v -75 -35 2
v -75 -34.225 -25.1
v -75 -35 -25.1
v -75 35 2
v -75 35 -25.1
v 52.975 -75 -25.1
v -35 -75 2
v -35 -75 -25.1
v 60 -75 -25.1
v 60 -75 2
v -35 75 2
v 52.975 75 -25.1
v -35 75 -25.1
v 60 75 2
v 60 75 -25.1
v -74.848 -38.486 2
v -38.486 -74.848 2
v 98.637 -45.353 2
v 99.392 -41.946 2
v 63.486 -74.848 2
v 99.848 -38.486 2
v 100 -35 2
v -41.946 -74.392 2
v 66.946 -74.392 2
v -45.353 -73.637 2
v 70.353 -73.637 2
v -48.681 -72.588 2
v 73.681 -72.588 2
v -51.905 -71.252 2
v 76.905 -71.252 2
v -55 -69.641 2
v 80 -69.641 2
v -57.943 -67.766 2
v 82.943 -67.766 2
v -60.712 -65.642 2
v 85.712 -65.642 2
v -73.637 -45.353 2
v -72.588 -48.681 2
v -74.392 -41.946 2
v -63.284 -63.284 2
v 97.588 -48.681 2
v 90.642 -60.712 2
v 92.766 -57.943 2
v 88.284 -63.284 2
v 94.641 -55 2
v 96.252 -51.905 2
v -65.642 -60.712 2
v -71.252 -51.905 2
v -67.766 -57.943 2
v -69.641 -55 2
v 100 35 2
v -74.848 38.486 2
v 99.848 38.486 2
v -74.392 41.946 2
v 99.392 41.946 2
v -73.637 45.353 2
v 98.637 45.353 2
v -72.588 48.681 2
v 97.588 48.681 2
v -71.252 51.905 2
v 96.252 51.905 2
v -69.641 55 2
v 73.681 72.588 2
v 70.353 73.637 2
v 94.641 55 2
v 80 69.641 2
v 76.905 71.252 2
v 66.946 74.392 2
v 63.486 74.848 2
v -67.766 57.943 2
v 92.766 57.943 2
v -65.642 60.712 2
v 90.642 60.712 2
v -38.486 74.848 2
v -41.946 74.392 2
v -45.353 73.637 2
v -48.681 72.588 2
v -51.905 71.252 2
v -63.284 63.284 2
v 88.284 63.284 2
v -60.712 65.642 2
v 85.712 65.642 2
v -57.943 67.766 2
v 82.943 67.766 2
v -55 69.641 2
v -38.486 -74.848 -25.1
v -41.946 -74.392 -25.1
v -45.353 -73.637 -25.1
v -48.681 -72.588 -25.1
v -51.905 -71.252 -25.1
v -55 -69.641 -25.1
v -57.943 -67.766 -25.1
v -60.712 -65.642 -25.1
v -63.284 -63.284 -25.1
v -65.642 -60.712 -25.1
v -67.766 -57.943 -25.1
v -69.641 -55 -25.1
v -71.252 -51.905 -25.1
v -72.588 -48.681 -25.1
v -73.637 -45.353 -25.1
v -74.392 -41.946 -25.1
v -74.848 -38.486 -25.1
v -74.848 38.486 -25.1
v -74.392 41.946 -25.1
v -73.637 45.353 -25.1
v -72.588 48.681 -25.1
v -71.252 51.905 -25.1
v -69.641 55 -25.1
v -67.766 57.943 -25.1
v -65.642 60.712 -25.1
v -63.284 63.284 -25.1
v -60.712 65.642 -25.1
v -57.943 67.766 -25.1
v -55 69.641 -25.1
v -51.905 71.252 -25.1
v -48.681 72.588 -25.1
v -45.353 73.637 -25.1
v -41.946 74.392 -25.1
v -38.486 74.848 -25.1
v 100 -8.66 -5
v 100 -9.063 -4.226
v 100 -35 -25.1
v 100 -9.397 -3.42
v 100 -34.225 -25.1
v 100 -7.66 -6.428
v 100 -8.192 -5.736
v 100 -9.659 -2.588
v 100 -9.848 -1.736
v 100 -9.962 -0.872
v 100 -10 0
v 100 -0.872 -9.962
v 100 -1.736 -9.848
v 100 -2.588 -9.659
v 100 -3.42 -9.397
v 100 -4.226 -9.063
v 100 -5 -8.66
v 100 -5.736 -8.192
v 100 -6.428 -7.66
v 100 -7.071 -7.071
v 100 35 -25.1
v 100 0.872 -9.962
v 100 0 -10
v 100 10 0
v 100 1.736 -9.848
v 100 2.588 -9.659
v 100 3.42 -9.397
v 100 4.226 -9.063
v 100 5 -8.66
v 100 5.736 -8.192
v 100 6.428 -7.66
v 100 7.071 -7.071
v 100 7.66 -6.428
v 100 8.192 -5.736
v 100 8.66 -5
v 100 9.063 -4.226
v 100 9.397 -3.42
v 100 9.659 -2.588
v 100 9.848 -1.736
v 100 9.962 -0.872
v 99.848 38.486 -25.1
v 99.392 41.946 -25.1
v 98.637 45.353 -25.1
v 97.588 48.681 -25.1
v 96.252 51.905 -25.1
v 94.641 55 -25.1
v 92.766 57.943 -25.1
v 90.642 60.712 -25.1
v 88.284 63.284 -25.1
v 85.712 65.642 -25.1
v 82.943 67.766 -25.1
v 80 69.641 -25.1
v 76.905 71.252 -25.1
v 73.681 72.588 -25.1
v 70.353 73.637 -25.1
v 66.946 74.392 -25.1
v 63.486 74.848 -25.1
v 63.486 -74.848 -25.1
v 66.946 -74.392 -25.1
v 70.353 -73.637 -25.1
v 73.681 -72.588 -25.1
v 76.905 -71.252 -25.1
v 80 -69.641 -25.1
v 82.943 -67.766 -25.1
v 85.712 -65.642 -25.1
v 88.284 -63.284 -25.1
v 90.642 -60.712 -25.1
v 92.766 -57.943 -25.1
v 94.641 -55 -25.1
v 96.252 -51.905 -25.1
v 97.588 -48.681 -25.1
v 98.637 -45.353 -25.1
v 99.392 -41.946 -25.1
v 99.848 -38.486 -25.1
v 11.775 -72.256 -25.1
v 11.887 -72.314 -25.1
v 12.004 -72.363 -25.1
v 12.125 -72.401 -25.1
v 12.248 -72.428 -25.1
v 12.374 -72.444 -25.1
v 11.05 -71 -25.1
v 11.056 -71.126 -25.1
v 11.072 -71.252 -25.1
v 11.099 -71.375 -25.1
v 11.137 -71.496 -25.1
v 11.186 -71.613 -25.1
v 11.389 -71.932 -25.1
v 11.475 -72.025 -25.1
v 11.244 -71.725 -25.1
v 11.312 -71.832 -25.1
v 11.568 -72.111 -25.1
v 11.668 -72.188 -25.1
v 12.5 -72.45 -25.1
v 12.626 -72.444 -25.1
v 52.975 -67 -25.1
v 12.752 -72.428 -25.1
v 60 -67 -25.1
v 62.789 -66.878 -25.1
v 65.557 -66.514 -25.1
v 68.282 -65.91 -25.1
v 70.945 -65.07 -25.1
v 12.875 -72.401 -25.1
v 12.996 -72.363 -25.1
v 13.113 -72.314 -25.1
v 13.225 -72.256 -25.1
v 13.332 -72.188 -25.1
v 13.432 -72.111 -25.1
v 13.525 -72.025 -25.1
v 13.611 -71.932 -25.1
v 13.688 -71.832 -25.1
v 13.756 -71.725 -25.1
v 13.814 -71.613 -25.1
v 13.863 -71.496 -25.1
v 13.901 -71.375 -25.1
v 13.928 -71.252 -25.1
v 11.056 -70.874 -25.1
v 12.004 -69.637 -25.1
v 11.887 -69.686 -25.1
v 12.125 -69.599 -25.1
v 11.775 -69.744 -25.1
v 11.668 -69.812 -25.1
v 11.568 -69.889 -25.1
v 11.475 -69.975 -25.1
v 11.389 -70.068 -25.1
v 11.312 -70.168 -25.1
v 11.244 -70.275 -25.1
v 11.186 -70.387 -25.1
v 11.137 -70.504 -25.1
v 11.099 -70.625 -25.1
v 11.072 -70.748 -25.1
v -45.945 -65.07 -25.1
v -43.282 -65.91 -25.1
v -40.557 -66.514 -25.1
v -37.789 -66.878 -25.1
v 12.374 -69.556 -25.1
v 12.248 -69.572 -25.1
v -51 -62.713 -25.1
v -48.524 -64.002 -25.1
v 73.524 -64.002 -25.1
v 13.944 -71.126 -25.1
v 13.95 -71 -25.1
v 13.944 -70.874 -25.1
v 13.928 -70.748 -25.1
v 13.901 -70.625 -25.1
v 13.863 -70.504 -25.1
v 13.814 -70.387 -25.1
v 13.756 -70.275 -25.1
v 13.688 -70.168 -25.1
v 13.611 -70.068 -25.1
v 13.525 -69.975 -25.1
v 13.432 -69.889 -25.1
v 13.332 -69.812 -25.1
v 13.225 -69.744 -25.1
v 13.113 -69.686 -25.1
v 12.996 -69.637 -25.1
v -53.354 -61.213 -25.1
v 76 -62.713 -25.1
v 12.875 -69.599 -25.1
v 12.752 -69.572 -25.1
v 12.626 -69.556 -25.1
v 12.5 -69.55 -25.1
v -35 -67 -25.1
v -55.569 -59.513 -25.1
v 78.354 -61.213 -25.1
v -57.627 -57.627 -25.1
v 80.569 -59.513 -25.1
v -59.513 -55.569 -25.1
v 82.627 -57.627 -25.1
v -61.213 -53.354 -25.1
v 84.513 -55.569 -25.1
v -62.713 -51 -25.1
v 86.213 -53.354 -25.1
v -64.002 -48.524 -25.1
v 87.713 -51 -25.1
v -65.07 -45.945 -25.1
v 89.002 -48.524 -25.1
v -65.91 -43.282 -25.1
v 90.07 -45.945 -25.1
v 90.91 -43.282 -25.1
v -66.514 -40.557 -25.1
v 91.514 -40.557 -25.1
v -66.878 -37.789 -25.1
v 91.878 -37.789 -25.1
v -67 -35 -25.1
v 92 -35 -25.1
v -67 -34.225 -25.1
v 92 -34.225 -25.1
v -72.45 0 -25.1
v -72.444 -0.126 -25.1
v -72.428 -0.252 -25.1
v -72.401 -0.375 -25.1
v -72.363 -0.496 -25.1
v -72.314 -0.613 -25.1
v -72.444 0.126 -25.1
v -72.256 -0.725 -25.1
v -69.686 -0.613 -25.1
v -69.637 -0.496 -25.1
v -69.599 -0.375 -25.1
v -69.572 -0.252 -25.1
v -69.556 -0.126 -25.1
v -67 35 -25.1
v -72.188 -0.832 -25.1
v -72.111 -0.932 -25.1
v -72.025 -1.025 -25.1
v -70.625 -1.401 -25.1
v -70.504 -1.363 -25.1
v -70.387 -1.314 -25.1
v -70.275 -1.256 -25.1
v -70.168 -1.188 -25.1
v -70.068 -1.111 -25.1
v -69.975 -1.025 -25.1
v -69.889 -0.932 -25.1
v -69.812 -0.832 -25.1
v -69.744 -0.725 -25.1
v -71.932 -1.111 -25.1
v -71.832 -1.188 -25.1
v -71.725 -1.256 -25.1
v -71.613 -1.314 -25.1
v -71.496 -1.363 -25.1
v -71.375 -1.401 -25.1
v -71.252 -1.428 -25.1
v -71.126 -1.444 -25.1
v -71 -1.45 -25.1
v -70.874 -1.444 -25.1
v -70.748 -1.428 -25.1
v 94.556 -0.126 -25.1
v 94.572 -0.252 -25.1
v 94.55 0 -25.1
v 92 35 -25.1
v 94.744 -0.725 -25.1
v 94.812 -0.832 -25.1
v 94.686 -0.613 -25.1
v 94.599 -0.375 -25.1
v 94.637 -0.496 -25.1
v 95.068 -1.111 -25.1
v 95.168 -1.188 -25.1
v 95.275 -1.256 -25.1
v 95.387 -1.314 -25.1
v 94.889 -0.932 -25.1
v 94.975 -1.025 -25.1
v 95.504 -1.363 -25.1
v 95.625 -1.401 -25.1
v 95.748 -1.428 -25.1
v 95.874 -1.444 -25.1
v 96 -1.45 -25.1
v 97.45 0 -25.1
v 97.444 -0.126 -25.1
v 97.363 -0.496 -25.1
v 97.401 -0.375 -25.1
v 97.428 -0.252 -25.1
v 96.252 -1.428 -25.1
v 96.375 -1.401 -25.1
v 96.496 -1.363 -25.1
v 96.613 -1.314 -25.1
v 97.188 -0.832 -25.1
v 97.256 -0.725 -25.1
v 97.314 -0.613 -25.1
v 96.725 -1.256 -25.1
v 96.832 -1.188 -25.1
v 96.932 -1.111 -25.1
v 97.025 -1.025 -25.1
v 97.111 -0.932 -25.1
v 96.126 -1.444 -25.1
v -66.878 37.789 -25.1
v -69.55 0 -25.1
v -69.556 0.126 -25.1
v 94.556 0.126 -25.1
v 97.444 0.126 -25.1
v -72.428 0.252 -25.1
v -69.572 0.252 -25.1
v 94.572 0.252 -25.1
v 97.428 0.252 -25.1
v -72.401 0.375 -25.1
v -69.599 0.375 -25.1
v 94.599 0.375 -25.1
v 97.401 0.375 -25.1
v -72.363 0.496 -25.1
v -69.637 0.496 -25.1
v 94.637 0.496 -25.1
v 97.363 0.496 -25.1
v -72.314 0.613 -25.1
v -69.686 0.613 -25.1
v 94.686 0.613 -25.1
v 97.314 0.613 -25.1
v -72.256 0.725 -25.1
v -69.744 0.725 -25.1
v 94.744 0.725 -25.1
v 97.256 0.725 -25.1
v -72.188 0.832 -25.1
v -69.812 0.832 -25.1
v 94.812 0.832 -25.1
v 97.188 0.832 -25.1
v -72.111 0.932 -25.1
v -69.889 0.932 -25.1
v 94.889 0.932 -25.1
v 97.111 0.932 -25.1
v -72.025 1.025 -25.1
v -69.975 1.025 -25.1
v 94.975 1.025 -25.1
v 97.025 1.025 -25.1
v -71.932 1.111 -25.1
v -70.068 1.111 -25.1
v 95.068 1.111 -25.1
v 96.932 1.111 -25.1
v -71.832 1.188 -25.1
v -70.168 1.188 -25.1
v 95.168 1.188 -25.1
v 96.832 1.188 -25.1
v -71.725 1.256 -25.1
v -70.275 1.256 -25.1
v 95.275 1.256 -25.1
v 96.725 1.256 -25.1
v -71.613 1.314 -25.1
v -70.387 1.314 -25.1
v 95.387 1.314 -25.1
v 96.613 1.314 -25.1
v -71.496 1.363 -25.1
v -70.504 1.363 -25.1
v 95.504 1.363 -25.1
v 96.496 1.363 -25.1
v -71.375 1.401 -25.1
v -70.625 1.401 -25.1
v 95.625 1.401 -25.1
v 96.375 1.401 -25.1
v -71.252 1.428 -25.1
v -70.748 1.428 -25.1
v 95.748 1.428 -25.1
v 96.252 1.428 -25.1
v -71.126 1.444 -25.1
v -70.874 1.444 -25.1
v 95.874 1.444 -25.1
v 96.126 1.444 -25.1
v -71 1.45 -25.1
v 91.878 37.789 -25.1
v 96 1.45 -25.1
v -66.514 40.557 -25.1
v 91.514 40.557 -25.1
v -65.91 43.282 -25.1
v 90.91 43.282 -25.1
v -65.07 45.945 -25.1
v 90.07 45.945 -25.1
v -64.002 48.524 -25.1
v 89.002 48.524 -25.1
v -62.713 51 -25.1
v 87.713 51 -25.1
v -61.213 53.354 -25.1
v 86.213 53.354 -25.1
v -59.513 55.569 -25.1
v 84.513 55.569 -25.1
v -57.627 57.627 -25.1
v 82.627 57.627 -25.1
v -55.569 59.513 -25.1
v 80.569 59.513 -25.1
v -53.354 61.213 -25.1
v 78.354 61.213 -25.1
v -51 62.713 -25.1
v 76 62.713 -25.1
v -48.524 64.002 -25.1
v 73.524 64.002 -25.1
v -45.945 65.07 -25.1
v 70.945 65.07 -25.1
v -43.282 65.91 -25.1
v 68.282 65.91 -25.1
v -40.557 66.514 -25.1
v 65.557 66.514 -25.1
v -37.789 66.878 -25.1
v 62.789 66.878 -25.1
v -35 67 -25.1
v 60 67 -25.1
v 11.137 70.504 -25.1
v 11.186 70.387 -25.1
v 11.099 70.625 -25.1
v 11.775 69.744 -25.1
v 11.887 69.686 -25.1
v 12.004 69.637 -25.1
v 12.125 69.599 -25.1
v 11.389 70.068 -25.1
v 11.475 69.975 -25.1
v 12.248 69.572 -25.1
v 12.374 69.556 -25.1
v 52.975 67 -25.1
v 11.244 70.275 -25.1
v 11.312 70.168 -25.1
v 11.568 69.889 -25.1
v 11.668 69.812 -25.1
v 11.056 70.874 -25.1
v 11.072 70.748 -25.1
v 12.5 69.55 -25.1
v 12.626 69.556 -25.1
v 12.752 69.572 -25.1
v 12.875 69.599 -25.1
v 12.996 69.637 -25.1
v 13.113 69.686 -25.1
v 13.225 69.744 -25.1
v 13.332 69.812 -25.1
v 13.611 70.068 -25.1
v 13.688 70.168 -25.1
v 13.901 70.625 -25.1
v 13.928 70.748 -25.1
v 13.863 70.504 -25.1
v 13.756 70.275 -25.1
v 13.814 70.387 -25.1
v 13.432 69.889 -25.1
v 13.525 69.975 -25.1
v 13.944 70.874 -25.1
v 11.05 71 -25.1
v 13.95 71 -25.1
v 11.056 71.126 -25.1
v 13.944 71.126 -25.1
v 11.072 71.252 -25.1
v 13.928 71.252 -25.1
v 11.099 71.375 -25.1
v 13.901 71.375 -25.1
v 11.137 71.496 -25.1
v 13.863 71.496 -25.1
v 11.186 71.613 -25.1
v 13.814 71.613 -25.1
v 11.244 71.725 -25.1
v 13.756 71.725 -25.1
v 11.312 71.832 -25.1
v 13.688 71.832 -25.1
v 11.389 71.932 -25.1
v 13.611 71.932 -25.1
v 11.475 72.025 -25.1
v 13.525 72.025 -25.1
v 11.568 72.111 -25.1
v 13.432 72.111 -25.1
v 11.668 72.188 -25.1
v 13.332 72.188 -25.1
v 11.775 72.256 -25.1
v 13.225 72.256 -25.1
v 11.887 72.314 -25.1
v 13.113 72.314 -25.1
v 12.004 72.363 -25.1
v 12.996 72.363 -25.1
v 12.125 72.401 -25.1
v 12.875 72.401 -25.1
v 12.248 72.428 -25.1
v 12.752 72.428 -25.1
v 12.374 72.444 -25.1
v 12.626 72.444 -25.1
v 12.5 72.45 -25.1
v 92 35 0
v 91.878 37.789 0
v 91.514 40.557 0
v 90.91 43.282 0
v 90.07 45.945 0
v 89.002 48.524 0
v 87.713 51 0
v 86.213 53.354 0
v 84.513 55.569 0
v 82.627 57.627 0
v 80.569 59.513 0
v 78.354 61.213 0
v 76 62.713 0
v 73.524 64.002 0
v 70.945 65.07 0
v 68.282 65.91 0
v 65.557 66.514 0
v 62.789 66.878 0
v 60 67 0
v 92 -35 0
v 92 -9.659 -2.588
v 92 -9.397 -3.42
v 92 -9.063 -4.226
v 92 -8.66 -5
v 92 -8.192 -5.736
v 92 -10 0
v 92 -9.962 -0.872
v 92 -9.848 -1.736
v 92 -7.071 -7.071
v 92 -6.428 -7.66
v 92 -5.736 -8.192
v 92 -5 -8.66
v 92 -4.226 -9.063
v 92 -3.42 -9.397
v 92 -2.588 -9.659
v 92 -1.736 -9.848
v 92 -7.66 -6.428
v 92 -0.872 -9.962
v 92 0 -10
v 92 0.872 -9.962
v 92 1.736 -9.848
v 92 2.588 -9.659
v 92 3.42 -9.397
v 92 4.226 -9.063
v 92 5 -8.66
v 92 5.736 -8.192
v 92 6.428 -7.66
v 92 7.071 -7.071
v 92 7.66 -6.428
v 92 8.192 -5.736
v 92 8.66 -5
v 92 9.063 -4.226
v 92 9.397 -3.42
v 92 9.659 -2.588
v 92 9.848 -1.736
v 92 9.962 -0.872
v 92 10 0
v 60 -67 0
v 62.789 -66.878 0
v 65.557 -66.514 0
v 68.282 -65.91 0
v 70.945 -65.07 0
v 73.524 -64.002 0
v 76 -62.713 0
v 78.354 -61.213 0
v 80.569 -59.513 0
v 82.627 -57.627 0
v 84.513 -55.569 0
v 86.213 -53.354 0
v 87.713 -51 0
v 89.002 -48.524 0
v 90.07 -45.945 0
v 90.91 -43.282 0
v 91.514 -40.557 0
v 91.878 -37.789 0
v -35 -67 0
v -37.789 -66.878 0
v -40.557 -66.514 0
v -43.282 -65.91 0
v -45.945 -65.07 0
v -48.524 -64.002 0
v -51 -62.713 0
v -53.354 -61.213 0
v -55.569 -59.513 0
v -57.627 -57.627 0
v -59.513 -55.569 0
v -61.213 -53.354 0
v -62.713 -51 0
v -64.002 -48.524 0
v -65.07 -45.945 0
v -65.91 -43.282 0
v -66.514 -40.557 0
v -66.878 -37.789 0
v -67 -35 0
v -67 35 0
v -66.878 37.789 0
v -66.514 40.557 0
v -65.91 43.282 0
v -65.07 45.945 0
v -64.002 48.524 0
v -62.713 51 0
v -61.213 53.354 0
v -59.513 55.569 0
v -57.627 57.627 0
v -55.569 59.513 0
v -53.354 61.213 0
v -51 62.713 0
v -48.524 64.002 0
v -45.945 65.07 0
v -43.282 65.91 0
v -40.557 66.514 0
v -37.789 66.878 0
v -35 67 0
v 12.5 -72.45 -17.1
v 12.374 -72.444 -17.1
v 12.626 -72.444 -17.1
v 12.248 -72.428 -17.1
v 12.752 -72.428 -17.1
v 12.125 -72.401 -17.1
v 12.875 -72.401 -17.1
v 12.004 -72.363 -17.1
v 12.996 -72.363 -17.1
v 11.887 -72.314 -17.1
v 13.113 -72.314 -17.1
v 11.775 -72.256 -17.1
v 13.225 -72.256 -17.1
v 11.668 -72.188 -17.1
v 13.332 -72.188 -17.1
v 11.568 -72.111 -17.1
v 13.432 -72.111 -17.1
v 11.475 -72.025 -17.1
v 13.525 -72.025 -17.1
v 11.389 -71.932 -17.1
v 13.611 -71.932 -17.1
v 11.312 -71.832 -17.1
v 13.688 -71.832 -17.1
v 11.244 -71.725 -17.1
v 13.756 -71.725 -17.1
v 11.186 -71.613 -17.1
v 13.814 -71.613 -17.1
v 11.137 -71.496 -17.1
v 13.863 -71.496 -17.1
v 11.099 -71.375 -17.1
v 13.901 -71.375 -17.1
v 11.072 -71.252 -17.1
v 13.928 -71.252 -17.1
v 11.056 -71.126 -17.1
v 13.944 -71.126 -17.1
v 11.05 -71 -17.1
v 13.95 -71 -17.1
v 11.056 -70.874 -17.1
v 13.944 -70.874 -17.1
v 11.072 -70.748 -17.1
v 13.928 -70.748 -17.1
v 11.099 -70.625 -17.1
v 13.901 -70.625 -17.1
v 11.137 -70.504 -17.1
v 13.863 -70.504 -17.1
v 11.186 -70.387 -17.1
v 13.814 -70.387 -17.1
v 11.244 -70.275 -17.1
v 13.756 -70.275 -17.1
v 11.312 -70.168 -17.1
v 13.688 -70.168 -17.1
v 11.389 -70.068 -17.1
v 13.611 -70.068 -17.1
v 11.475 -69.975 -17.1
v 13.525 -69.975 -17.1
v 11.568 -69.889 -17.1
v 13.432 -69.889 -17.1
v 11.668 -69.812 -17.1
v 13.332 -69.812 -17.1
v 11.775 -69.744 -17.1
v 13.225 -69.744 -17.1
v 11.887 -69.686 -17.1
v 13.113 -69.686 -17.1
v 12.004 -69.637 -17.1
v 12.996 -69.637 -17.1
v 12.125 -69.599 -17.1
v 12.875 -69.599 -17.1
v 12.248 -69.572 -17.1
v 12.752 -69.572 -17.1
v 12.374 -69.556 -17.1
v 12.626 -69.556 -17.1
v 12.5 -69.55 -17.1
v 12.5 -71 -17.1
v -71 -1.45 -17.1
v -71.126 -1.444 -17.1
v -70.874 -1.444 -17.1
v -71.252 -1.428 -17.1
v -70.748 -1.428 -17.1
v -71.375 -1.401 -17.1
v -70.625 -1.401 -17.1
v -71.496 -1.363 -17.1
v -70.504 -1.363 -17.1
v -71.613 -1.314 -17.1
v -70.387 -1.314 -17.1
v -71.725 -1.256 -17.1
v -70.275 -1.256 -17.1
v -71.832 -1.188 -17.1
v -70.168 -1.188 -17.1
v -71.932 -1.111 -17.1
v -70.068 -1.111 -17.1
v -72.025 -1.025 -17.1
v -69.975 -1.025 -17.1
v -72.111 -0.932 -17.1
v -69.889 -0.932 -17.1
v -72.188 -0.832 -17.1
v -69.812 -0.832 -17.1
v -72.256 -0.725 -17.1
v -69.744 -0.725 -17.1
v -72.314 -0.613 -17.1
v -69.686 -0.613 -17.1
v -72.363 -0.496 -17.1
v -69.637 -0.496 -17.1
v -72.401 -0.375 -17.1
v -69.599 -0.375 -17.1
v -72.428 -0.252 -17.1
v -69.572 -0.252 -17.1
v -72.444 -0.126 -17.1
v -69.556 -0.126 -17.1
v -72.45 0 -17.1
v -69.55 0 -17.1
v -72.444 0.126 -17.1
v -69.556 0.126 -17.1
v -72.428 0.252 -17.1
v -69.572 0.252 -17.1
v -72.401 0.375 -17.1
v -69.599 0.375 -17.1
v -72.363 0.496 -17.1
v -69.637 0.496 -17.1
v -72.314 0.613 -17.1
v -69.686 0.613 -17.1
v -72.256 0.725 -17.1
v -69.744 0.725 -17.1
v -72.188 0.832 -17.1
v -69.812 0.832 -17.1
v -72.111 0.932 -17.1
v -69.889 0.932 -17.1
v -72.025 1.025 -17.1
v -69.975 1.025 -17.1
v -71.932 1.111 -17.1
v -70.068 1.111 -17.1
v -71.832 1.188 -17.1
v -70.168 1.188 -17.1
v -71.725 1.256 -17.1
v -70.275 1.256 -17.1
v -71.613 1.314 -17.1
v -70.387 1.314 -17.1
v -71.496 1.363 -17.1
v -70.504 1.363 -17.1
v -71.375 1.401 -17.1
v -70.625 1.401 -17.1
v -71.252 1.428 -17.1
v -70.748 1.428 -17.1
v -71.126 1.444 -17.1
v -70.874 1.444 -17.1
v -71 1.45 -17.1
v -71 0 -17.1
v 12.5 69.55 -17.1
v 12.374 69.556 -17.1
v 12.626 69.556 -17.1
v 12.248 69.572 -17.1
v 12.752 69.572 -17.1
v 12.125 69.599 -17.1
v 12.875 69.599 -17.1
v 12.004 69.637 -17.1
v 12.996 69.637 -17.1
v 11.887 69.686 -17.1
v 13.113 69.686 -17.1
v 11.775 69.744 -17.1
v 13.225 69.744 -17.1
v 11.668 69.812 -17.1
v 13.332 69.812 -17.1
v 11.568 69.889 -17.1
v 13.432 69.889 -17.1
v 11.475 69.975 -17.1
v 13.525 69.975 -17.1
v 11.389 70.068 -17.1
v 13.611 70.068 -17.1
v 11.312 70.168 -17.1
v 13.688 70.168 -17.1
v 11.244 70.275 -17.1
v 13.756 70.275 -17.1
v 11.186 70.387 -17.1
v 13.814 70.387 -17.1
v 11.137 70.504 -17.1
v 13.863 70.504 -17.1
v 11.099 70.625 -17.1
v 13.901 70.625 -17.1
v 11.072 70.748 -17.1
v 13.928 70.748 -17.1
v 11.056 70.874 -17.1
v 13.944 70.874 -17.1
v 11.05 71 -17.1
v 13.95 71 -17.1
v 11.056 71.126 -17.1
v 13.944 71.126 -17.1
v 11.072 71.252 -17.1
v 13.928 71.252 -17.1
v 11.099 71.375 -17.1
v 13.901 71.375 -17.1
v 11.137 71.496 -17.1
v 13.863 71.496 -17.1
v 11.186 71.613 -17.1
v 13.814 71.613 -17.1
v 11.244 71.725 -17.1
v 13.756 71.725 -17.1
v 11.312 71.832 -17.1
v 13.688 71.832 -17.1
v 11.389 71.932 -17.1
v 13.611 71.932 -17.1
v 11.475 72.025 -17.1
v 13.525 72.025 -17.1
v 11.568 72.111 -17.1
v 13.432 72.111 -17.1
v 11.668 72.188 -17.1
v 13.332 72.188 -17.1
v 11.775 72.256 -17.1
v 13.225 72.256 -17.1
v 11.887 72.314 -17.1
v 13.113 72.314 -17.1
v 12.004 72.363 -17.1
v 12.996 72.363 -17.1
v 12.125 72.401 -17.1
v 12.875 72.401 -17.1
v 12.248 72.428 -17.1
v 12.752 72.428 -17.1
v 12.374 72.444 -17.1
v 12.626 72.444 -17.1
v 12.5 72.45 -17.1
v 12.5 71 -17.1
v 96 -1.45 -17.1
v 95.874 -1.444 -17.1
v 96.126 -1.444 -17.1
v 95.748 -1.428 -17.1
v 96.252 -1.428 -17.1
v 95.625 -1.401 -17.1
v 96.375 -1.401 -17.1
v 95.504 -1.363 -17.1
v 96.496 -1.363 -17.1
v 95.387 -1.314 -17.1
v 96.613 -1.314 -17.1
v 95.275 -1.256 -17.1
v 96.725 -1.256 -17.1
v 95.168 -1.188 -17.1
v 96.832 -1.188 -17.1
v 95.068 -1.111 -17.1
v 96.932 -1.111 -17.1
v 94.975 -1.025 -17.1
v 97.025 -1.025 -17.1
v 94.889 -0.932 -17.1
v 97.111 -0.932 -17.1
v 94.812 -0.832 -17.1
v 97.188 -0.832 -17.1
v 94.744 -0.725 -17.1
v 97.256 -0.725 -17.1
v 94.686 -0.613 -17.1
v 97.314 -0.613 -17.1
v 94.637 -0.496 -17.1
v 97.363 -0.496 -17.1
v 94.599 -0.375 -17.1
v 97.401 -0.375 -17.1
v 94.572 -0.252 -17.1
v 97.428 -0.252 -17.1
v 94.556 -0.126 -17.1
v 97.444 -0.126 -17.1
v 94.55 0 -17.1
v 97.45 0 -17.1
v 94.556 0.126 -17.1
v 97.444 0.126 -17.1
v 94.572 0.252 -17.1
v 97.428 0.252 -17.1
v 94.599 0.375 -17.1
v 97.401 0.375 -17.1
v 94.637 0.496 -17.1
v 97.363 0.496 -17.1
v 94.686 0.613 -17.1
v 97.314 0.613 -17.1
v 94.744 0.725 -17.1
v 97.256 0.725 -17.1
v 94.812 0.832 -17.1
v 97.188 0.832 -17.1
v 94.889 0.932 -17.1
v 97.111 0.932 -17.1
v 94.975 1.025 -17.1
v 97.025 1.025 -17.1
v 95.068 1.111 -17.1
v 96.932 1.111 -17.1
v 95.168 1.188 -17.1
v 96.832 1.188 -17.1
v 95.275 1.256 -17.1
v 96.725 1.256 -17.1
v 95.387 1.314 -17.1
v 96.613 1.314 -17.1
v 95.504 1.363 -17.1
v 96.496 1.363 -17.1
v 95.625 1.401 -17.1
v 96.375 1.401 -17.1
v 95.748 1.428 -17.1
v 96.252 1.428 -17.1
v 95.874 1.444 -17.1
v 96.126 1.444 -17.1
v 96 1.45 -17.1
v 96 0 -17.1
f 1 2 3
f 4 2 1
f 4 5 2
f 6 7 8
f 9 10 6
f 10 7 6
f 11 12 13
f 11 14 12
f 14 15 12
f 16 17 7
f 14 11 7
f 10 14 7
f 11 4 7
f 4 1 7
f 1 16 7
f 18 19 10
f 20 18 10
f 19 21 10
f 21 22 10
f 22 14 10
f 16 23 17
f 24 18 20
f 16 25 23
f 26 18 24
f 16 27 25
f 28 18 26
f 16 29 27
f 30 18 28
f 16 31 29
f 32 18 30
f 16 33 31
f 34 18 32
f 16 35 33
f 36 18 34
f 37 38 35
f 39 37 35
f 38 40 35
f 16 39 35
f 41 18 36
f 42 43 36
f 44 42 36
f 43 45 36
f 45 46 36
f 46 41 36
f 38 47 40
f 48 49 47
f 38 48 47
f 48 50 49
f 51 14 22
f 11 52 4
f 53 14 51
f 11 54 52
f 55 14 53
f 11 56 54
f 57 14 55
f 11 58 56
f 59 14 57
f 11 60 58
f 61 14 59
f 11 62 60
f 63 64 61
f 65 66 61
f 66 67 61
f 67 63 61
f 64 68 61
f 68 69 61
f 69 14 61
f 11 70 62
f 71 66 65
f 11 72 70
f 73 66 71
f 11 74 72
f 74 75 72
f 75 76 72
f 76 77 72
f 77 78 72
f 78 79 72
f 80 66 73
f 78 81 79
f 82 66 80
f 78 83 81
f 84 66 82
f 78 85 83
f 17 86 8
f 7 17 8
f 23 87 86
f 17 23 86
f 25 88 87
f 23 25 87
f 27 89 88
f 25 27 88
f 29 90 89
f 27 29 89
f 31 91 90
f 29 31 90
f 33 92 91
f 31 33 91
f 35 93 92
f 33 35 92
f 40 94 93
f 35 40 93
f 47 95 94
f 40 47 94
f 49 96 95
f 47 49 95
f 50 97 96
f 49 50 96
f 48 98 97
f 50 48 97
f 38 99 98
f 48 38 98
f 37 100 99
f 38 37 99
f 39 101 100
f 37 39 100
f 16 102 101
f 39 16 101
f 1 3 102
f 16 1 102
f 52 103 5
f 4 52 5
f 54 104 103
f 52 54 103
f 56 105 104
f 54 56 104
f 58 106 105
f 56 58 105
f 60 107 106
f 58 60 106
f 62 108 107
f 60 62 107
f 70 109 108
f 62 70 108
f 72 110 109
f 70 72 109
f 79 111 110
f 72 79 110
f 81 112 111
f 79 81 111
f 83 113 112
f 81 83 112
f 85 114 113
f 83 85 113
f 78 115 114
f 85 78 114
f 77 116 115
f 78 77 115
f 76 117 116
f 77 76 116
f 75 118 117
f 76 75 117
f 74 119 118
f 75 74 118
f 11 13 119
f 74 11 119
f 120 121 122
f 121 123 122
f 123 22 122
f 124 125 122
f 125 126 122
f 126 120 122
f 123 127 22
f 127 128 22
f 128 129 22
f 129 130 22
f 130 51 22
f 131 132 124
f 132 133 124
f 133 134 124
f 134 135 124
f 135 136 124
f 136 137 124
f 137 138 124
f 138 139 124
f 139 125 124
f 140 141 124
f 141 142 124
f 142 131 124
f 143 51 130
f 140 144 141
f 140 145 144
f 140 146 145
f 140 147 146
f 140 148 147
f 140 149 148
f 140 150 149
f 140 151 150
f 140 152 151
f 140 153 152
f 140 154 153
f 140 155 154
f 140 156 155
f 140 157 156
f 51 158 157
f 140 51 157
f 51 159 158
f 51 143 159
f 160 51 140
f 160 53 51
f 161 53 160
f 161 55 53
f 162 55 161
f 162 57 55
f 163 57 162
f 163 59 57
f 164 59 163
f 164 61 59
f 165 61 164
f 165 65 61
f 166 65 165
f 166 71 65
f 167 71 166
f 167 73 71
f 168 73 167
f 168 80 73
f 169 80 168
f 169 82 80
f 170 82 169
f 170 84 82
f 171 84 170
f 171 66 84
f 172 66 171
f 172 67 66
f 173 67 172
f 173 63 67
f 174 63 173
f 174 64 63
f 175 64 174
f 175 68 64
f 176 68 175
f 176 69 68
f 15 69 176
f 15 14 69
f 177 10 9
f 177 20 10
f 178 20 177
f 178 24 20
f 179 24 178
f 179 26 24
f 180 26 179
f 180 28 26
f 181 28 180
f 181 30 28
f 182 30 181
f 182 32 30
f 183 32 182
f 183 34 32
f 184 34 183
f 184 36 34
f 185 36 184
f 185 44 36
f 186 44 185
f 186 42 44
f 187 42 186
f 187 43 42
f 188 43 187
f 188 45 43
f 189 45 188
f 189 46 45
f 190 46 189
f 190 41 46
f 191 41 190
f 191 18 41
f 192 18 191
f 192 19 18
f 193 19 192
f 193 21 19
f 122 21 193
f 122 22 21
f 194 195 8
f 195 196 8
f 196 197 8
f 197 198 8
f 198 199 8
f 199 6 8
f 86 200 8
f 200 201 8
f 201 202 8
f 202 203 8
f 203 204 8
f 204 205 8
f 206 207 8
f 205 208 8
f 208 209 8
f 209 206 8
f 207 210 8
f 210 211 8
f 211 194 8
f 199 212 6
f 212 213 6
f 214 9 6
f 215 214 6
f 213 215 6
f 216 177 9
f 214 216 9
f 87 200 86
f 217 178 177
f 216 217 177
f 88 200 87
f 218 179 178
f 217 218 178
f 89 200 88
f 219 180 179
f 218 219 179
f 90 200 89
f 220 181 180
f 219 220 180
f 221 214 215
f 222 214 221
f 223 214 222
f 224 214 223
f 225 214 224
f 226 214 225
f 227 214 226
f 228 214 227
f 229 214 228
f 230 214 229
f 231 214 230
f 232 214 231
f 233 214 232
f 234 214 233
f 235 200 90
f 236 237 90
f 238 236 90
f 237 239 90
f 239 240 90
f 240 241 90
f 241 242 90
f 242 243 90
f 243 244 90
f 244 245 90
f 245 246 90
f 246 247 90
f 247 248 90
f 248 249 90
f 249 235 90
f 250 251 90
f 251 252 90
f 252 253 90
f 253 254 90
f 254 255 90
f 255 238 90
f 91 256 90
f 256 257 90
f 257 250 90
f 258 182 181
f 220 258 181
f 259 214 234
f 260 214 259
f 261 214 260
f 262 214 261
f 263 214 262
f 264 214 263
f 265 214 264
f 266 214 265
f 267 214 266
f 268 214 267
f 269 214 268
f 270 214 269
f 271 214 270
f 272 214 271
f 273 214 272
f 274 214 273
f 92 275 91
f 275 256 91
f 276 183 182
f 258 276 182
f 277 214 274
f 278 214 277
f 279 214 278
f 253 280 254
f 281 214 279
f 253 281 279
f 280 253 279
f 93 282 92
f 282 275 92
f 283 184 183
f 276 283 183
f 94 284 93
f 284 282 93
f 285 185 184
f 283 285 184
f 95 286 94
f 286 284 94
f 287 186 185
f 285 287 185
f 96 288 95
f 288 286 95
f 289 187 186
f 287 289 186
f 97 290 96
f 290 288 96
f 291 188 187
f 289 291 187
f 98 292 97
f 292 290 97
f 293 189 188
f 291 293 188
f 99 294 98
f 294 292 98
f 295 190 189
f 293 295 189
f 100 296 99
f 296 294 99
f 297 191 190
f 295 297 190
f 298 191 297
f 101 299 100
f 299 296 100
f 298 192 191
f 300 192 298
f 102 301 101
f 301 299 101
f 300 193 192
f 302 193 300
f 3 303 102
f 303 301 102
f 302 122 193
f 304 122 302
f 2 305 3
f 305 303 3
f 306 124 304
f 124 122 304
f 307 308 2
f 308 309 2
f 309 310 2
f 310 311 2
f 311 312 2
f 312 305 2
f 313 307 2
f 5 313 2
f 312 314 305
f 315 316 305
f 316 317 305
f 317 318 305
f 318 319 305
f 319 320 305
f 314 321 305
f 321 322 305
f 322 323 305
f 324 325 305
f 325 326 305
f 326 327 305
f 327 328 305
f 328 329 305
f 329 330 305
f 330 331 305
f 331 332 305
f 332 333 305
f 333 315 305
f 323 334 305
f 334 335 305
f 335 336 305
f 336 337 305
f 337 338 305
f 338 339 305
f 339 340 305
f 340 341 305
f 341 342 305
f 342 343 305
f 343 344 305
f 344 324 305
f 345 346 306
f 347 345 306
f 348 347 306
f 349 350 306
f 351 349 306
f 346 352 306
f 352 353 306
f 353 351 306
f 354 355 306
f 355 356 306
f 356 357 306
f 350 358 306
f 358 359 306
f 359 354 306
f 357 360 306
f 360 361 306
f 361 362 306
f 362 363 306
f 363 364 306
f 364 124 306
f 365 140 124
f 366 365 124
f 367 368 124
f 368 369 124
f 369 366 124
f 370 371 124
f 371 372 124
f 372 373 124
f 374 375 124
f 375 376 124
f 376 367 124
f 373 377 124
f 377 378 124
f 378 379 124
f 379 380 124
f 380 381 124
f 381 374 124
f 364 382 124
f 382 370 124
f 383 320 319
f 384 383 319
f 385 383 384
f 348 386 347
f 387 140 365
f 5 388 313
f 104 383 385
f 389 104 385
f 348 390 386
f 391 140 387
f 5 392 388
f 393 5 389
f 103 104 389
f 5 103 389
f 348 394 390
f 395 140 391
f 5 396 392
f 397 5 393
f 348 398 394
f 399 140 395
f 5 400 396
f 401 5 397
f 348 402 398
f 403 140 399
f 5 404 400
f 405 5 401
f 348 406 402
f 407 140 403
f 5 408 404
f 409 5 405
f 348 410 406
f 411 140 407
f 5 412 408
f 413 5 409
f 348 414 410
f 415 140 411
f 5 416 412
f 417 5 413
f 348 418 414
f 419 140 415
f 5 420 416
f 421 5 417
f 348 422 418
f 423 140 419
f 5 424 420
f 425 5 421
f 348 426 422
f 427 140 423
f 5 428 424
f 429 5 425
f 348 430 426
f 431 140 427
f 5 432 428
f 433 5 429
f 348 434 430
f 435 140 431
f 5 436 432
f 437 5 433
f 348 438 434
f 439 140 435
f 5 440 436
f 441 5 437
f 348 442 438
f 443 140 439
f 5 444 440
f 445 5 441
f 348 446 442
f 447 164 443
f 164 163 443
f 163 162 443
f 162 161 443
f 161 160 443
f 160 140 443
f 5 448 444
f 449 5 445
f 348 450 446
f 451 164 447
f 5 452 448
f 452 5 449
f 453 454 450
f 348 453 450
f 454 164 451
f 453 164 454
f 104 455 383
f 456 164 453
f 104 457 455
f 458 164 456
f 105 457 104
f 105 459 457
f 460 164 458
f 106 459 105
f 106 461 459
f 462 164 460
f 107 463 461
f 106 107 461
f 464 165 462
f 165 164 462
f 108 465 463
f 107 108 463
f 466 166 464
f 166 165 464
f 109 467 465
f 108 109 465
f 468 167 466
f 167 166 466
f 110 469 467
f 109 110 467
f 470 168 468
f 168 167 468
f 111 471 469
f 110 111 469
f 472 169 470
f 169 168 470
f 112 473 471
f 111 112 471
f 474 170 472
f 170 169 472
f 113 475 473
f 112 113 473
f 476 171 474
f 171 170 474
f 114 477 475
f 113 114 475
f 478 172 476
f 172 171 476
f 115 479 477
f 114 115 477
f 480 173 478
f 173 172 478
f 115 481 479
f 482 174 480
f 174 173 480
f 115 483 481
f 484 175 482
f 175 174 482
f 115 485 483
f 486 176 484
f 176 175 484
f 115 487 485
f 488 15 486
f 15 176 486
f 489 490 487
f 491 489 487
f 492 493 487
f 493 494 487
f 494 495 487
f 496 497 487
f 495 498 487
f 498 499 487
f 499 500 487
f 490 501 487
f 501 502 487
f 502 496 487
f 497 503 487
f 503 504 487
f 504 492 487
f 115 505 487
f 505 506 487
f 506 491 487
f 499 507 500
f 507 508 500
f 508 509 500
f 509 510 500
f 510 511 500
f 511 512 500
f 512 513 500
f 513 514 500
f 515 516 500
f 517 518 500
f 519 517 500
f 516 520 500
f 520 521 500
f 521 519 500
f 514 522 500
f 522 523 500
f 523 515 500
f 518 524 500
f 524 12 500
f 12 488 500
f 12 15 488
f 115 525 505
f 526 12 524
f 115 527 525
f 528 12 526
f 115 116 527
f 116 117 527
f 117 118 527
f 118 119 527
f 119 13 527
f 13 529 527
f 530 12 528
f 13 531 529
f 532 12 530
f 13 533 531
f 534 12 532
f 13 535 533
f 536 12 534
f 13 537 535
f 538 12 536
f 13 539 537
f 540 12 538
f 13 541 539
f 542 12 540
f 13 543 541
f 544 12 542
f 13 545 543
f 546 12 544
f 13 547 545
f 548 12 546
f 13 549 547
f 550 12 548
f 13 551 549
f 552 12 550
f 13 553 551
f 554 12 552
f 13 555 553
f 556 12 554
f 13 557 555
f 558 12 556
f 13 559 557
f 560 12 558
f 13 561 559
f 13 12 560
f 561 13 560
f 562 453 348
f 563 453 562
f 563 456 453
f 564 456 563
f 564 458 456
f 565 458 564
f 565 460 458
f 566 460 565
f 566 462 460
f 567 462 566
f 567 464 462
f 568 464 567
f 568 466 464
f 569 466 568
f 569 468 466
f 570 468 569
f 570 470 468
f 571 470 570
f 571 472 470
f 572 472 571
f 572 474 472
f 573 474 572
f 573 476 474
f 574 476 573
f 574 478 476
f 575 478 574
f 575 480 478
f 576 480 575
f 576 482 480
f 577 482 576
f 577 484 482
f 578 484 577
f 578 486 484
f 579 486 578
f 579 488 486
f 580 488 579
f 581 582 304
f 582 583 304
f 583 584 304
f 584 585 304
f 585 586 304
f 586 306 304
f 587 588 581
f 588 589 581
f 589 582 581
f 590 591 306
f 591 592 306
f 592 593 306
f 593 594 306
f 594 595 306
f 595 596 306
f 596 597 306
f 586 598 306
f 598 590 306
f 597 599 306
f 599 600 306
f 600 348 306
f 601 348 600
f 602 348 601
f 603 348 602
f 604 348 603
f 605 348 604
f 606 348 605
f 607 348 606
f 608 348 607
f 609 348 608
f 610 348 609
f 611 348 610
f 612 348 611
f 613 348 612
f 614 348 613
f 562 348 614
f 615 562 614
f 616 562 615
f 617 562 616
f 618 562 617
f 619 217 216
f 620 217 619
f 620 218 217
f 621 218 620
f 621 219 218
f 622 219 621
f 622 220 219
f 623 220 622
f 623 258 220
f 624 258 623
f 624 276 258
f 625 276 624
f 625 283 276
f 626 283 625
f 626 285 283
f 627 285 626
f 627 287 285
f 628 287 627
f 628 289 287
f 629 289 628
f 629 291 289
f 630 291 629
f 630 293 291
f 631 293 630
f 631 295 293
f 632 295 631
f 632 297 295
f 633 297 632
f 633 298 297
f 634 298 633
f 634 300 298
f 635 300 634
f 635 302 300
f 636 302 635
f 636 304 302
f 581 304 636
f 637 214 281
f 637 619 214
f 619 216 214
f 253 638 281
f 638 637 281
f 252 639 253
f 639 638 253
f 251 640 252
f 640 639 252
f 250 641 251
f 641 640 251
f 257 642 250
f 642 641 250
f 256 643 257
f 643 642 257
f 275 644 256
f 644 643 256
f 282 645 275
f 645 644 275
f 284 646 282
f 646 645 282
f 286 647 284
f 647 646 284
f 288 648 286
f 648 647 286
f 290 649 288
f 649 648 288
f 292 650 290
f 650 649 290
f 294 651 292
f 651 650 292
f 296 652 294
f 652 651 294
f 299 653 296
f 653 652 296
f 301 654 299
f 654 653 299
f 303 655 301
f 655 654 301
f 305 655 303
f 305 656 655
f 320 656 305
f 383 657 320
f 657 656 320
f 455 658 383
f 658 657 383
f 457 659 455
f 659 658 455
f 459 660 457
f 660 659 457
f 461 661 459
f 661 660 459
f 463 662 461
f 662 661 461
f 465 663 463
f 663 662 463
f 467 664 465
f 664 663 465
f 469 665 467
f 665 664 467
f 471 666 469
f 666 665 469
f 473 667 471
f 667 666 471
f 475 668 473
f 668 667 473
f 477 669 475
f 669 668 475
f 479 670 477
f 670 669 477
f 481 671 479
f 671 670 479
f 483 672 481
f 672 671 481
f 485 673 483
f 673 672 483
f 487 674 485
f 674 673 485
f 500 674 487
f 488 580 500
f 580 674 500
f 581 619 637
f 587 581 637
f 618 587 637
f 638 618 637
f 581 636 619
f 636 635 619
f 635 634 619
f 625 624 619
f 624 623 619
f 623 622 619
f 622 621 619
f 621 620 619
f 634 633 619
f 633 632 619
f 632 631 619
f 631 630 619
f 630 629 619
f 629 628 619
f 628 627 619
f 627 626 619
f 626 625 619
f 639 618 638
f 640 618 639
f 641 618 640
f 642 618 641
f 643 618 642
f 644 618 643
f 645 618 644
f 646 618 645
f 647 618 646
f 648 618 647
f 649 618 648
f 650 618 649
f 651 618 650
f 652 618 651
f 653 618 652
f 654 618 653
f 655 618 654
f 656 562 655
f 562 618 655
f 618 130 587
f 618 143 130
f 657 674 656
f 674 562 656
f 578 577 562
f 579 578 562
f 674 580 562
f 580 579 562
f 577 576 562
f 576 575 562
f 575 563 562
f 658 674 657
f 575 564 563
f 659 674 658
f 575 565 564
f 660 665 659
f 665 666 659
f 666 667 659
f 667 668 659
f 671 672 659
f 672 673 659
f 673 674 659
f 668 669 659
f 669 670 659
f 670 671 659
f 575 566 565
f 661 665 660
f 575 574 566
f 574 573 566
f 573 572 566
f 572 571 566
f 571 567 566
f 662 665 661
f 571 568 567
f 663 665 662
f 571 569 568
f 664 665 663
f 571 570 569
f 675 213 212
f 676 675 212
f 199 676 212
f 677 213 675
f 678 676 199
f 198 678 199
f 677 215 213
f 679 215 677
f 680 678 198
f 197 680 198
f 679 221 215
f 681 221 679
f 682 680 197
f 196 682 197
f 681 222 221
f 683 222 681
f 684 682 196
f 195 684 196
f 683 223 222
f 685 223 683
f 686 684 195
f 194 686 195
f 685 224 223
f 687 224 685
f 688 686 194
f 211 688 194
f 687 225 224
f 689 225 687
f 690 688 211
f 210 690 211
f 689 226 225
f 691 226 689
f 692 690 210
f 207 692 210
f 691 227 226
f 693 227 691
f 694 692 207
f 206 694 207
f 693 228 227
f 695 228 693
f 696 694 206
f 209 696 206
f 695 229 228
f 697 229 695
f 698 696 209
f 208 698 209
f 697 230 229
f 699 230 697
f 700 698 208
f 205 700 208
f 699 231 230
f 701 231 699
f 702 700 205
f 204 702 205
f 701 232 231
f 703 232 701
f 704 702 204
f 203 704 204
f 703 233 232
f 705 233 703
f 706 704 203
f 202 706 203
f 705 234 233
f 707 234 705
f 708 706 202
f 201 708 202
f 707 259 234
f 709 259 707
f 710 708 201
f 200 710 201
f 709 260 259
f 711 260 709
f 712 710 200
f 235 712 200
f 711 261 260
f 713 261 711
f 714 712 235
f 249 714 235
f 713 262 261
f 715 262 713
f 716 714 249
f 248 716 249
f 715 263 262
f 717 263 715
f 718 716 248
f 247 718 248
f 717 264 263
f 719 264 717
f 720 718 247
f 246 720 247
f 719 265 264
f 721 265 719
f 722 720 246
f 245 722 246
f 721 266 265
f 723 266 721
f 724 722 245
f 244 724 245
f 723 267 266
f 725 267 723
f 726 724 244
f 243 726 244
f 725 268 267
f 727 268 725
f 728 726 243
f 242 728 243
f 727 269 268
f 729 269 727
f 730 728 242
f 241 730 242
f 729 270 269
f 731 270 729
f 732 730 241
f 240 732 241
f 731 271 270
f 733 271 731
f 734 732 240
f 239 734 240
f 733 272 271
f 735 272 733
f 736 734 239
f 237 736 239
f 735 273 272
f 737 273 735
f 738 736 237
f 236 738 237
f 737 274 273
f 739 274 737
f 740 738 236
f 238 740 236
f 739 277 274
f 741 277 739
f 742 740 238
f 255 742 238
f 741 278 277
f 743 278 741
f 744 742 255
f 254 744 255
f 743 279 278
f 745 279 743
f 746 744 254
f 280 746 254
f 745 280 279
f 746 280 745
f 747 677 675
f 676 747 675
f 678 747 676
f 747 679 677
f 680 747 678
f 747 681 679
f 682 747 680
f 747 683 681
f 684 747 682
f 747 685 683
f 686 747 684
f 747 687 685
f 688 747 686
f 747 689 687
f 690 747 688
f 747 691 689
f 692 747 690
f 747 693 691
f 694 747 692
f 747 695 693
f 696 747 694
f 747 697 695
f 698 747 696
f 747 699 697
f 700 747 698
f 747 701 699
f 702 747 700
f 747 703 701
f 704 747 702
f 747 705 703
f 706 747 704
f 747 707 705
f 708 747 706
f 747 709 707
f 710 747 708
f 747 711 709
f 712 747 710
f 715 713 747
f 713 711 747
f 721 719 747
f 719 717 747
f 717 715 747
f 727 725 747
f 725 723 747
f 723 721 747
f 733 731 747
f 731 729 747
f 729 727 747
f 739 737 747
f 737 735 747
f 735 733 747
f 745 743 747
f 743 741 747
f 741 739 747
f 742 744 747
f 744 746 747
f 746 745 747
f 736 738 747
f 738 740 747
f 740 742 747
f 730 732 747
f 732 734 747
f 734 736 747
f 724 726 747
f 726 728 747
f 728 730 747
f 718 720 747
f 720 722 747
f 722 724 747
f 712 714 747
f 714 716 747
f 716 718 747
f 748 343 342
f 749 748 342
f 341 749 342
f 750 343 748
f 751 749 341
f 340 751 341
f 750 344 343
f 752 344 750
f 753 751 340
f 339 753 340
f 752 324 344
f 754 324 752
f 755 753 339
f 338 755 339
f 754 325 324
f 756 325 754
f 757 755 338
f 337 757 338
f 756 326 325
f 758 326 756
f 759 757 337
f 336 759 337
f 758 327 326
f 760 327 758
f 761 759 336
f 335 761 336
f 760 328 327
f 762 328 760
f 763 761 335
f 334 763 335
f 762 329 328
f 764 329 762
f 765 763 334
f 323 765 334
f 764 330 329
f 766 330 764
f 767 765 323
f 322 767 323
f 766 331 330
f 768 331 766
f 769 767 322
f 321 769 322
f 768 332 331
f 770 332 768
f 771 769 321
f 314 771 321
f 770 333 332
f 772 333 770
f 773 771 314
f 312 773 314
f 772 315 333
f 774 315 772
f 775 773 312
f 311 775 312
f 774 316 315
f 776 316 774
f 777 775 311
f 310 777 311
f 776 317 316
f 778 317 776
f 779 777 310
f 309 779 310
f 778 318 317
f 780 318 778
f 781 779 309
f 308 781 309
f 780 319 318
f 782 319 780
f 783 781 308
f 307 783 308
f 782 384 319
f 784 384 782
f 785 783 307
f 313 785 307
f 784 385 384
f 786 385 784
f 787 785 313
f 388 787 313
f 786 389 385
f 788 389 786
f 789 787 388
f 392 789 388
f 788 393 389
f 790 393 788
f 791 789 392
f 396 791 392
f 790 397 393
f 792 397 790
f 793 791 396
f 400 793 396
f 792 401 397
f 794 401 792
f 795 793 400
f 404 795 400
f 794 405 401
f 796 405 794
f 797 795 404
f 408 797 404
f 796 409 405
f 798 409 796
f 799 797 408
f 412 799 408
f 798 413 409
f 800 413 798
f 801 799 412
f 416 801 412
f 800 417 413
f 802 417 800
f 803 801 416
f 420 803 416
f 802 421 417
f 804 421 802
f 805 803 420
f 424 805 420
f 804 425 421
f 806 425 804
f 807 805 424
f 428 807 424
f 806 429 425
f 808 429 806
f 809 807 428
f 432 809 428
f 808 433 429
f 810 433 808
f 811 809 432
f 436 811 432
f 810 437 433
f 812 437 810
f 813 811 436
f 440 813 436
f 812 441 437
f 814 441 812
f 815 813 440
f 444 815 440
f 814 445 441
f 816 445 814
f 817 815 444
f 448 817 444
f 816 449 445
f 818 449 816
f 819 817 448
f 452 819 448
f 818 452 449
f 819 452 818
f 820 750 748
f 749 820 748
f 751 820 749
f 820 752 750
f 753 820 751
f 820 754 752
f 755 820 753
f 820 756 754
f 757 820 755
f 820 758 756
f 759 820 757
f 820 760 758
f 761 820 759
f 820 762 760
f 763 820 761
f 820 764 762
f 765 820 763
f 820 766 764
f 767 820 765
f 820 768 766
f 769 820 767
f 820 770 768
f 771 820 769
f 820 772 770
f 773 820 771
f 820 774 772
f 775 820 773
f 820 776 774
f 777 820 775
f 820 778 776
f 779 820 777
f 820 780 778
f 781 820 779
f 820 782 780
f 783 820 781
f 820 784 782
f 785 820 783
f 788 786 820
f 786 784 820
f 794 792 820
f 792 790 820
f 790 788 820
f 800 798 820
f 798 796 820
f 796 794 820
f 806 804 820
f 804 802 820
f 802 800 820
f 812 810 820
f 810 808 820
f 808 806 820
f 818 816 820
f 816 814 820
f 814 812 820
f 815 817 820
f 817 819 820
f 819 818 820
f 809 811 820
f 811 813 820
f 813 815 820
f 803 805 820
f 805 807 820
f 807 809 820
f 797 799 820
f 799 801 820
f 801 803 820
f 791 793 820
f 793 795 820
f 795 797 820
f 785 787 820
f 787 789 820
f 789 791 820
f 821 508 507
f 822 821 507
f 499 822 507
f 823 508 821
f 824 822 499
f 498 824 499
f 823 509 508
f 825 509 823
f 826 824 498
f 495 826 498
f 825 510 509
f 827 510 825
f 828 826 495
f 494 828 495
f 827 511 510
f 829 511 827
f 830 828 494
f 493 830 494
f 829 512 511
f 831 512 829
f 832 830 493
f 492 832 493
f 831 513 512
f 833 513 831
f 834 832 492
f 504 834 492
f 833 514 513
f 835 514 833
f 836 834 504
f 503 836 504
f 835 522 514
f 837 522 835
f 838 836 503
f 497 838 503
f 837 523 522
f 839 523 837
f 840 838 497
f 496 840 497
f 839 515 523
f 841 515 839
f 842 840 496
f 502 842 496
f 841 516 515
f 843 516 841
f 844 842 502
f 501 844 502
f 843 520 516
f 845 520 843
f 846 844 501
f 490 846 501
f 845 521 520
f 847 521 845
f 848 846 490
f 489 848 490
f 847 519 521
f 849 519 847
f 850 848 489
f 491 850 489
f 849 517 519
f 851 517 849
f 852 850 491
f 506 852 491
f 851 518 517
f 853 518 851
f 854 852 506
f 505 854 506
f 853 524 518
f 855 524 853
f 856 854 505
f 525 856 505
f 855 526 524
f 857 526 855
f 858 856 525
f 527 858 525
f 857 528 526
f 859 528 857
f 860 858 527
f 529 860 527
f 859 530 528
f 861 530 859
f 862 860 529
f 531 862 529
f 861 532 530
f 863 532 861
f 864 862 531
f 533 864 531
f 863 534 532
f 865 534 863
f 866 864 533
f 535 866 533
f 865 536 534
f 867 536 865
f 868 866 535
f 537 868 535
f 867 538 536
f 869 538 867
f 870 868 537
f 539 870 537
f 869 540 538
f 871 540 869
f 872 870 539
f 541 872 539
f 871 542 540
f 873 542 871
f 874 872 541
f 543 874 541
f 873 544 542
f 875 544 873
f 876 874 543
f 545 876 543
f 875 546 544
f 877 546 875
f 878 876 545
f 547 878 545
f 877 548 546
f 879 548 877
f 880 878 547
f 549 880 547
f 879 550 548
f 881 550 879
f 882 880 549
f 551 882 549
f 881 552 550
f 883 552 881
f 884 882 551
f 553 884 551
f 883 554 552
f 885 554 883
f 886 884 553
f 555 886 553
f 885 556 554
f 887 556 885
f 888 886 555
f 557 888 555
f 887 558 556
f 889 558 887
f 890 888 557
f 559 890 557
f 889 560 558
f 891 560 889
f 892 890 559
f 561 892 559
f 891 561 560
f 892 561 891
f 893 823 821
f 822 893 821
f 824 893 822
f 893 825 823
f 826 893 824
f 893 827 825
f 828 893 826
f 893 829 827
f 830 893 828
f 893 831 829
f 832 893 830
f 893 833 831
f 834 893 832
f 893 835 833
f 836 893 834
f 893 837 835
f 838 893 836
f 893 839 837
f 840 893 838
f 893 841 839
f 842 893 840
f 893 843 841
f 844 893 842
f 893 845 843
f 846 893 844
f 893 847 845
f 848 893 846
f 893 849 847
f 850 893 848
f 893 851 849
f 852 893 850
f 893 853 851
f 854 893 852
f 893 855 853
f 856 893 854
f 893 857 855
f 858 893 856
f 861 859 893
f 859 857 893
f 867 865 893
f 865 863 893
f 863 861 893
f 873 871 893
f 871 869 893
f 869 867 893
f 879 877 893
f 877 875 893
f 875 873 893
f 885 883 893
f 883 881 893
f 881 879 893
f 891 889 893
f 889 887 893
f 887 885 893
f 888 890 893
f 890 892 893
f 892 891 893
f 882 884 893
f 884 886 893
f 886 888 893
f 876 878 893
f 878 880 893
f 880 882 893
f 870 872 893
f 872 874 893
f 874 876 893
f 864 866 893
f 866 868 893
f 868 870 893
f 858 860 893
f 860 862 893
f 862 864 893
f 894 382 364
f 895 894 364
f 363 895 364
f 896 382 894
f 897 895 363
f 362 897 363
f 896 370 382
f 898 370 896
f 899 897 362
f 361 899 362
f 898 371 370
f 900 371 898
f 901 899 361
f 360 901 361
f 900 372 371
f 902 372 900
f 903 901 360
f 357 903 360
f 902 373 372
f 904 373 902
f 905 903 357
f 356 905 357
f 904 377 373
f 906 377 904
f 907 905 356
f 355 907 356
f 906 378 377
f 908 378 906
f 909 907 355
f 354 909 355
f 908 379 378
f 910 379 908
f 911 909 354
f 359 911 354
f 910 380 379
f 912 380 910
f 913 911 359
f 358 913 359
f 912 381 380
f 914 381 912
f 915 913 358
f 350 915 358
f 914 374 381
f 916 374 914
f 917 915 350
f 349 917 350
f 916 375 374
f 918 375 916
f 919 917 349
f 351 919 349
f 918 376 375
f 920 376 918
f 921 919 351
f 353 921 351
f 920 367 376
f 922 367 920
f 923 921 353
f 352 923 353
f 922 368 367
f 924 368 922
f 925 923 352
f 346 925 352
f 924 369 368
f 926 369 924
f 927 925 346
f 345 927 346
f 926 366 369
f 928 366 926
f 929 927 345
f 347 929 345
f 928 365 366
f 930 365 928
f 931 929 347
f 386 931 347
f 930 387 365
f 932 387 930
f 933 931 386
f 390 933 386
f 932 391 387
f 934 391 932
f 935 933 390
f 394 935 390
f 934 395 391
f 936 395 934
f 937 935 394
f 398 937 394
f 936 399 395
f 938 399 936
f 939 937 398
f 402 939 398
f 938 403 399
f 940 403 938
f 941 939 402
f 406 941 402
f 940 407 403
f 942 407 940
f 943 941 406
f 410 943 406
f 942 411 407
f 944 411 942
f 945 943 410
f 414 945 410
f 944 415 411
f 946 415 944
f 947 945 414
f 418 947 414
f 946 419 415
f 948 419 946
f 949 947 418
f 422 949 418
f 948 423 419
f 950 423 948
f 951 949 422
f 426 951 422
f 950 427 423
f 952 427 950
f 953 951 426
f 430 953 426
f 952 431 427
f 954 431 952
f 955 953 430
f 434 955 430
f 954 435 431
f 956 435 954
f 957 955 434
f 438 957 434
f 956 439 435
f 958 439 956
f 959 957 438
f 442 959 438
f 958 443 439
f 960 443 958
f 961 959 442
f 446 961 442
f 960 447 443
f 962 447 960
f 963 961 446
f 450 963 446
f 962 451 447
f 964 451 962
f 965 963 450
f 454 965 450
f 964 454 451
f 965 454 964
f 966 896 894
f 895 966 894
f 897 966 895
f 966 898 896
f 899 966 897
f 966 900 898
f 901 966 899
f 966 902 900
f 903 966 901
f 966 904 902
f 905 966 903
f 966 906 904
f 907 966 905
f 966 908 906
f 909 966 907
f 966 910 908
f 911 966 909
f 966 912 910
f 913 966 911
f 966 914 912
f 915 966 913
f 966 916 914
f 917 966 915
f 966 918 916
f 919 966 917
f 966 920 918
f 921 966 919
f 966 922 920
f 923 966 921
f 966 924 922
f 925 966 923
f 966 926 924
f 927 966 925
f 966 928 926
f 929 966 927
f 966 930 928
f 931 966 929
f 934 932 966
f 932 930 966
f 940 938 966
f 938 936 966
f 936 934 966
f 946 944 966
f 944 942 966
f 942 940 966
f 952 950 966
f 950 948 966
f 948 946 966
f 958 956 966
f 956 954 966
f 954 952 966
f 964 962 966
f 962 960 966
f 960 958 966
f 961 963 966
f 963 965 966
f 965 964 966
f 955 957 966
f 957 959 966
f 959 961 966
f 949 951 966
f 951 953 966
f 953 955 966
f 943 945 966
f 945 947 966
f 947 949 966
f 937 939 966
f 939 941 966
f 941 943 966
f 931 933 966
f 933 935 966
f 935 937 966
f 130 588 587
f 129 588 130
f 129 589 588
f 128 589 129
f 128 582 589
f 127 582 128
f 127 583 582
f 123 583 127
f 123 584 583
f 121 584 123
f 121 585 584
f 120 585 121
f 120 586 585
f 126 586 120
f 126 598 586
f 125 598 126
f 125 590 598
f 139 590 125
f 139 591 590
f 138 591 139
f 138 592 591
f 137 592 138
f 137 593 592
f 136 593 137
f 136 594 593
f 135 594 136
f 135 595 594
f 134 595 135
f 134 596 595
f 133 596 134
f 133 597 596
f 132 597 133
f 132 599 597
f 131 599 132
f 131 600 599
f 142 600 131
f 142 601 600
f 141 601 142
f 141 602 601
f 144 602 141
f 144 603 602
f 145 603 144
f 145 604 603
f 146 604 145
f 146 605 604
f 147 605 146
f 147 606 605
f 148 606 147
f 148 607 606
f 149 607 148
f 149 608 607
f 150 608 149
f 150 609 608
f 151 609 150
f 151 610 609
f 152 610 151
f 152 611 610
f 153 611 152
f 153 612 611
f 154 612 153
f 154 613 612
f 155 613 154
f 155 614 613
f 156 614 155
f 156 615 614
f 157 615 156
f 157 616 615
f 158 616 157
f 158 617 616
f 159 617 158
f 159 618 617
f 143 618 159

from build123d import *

# Parameters (mm, degrees)
ESQUISSE1_W             = 150
ESQUISSE1_H             = 150
BOSS_EXTRU_1_DEPTH      = 2
CONG_1_R                = 40
BOSS_EXTRU_4_DEPTH      = 2
CONG_2_R                = 40
BOSS_EXTRU_3_DEPTH      = 25.1
ESQUISSE8_R             = 1.45
ENL_V_MAT_EXTRU_4_DEPTH = 8
ENL_V_MAT_EXTRU_6_DEPTH = 42


with BuildPart() as part:
    # Esquisse1 → Boss.-Extru.1 (new body)
    with BuildSketch(Plane.XY):
        Rectangle(ESQUISSE1_W, ESQUISSE1_H)
    extrude(amount=BOSS_EXTRU_1_DEPTH)

    # Congé1
    cong_1_edges = [part.edges().sort_by_distance(p)[0] for p in [
        (-75, 75, 1),
        (75, 75, 1),
        (75, -75, 1),
        (-75, -75, 1),
    ]]
    fillet(cong_1_edges, radius=CONG_1_R)

    # Esquisse9 → Boss.-Extru.4 (add)
    with BuildSketch(Plane.XY.offset(2)):
        with BuildLine():
            Line((35, 75), (100, 75))
            Line((100, 75), (100, -75))
            Line((100, -75), (35, -75))
            ThreePointArc((35, -75), (63.284271247, -63.284271247), (75, -35))
            Line((75, -35), (75, 35))
            ThreePointArc((75, 35), (63.284271247, 63.284271247), (35, 75))
        make_face()
    extrude(amount=-BOSS_EXTRU_4_DEPTH)

    # Congé2
    cong_2_edges = [part.edges().sort_by_distance(p)[0] for p in [
        (100, 75, 1),
        (100, -75, 1),
    ]]
    fillet(cong_2_edges, radius=CONG_2_R)

    # Esquisse5 → Boss.-Extru.3 (add)
    with BuildSketch(Plane(origin=(0, 0, 0), x_dir=(-1, 0, 0), z_dir=(0, 0, -1))):
        with BuildLine():
            Line((-100, 35), (-100, -35))
            ThreePointArc((-100, -35), (-88.284271247, -63.284271247), (-60, -75))
            Line((-60, -75), (35, -75))
            ThreePointArc((35, -75), (63.284271247, -63.284271247), (75, -35))
            Line((75, -35), (75, 35))
            ThreePointArc((75, 35), (63.284271247, 63.284271247), (35, 75))
            Line((35, 75), (-60, 75))
            ThreePointArc((-60, 75), (-88.284271247, 63.284271247), (-100, 35))
        make_face()
        with BuildLine():
            Line((35, 67), (-60, 67))
            ThreePointArc((-60, 67), (-82.627416998, 57.627416998), (-92, 35))
            Line((-92, 35), (-92, -35))
            ThreePointArc((-92, -35), (-82.627416998, -57.627416998), (-60, -67))
            Line((-60, -67), (35, -67))
            ThreePointArc((35, -67), (57.627416998, -57.627416998), (67, -35))
            Line((67, -35), (67, 35))
            ThreePointArc((67, 35), (57.627416998, 57.627416998), (35, 67))
        make_face(mode=Mode.SUBTRACT)
    extrude(amount=BOSS_EXTRU_3_DEPTH)

    # Esquisse8 → Enlèv. mat.-Extru.4 (cut)
    with BuildSketch(Plane(origin=(0, 0, -25.1), x_dir=(-1, 0, 0), z_dir=(0, 0, -1))):
        with Locations((-96, 0)):
            Circle(ESQUISSE8_R)
        with Locations((-12.5, 71)):
            Circle(ESQUISSE8_R)
        with Locations((71, 0)):
            Circle(ESQUISSE8_R)
        with Locations((-12.5, -71)):
            Circle(ESQUISSE8_R)
    extrude(amount=-ENL_V_MAT_EXTRU_4_DEPTH, mode=Mode.SUBTRACT)

    # Esquisse10 → Enlèv. mat.-Extru.6 (cut)
    with BuildSketch(Plane(origin=(100, 0, 0), x_dir=(0, 0, -1), z_dir=(1, 0, 0))):
        with BuildLine():
            Line((0, 10), (0, -10))
            ThreePointArc((0, -10), (10, 0), (0, 10))
        make_face()
    extrude(amount=-ENL_V_MAT_EXTRU_6_DEPTH, mode=Mode.SUBTRACT)


solid = part.part
